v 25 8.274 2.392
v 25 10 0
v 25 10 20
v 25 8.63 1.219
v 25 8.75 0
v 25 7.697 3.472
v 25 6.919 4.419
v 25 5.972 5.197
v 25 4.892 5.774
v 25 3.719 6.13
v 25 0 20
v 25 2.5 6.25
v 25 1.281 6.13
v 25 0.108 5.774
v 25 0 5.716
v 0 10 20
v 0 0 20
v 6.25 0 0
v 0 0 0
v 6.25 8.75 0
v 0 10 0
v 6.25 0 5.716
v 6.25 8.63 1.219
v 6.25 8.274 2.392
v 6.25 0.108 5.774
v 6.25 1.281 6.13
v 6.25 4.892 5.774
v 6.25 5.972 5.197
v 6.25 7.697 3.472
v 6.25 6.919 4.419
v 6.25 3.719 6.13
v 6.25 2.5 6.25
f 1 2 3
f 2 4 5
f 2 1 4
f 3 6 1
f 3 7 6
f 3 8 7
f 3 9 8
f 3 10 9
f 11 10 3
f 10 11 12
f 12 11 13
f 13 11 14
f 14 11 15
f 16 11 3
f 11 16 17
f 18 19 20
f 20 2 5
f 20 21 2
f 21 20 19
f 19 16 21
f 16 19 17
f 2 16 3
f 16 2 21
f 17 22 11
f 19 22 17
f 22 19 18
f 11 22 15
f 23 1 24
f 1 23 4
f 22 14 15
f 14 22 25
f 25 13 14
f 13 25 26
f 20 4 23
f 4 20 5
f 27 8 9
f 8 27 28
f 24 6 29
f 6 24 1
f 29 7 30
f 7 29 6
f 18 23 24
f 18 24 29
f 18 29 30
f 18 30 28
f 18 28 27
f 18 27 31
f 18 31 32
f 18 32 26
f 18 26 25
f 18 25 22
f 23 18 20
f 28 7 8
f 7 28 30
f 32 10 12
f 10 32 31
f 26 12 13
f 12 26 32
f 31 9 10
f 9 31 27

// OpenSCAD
module b(height=20, width=25, depth=10) {
  difference() {
    cube([width, depth, height]);
    translate([width/4, depth/4, 0])
    rotate([0, 90, 0])
    cylinder(h=height, r=width/4, $fn=32);
    translate([width/4, depth/4, 0])
    rotate([0, 90, 0])
    cylinder(h=height, r=depth/4, $fn=32);
  }
}

b();
